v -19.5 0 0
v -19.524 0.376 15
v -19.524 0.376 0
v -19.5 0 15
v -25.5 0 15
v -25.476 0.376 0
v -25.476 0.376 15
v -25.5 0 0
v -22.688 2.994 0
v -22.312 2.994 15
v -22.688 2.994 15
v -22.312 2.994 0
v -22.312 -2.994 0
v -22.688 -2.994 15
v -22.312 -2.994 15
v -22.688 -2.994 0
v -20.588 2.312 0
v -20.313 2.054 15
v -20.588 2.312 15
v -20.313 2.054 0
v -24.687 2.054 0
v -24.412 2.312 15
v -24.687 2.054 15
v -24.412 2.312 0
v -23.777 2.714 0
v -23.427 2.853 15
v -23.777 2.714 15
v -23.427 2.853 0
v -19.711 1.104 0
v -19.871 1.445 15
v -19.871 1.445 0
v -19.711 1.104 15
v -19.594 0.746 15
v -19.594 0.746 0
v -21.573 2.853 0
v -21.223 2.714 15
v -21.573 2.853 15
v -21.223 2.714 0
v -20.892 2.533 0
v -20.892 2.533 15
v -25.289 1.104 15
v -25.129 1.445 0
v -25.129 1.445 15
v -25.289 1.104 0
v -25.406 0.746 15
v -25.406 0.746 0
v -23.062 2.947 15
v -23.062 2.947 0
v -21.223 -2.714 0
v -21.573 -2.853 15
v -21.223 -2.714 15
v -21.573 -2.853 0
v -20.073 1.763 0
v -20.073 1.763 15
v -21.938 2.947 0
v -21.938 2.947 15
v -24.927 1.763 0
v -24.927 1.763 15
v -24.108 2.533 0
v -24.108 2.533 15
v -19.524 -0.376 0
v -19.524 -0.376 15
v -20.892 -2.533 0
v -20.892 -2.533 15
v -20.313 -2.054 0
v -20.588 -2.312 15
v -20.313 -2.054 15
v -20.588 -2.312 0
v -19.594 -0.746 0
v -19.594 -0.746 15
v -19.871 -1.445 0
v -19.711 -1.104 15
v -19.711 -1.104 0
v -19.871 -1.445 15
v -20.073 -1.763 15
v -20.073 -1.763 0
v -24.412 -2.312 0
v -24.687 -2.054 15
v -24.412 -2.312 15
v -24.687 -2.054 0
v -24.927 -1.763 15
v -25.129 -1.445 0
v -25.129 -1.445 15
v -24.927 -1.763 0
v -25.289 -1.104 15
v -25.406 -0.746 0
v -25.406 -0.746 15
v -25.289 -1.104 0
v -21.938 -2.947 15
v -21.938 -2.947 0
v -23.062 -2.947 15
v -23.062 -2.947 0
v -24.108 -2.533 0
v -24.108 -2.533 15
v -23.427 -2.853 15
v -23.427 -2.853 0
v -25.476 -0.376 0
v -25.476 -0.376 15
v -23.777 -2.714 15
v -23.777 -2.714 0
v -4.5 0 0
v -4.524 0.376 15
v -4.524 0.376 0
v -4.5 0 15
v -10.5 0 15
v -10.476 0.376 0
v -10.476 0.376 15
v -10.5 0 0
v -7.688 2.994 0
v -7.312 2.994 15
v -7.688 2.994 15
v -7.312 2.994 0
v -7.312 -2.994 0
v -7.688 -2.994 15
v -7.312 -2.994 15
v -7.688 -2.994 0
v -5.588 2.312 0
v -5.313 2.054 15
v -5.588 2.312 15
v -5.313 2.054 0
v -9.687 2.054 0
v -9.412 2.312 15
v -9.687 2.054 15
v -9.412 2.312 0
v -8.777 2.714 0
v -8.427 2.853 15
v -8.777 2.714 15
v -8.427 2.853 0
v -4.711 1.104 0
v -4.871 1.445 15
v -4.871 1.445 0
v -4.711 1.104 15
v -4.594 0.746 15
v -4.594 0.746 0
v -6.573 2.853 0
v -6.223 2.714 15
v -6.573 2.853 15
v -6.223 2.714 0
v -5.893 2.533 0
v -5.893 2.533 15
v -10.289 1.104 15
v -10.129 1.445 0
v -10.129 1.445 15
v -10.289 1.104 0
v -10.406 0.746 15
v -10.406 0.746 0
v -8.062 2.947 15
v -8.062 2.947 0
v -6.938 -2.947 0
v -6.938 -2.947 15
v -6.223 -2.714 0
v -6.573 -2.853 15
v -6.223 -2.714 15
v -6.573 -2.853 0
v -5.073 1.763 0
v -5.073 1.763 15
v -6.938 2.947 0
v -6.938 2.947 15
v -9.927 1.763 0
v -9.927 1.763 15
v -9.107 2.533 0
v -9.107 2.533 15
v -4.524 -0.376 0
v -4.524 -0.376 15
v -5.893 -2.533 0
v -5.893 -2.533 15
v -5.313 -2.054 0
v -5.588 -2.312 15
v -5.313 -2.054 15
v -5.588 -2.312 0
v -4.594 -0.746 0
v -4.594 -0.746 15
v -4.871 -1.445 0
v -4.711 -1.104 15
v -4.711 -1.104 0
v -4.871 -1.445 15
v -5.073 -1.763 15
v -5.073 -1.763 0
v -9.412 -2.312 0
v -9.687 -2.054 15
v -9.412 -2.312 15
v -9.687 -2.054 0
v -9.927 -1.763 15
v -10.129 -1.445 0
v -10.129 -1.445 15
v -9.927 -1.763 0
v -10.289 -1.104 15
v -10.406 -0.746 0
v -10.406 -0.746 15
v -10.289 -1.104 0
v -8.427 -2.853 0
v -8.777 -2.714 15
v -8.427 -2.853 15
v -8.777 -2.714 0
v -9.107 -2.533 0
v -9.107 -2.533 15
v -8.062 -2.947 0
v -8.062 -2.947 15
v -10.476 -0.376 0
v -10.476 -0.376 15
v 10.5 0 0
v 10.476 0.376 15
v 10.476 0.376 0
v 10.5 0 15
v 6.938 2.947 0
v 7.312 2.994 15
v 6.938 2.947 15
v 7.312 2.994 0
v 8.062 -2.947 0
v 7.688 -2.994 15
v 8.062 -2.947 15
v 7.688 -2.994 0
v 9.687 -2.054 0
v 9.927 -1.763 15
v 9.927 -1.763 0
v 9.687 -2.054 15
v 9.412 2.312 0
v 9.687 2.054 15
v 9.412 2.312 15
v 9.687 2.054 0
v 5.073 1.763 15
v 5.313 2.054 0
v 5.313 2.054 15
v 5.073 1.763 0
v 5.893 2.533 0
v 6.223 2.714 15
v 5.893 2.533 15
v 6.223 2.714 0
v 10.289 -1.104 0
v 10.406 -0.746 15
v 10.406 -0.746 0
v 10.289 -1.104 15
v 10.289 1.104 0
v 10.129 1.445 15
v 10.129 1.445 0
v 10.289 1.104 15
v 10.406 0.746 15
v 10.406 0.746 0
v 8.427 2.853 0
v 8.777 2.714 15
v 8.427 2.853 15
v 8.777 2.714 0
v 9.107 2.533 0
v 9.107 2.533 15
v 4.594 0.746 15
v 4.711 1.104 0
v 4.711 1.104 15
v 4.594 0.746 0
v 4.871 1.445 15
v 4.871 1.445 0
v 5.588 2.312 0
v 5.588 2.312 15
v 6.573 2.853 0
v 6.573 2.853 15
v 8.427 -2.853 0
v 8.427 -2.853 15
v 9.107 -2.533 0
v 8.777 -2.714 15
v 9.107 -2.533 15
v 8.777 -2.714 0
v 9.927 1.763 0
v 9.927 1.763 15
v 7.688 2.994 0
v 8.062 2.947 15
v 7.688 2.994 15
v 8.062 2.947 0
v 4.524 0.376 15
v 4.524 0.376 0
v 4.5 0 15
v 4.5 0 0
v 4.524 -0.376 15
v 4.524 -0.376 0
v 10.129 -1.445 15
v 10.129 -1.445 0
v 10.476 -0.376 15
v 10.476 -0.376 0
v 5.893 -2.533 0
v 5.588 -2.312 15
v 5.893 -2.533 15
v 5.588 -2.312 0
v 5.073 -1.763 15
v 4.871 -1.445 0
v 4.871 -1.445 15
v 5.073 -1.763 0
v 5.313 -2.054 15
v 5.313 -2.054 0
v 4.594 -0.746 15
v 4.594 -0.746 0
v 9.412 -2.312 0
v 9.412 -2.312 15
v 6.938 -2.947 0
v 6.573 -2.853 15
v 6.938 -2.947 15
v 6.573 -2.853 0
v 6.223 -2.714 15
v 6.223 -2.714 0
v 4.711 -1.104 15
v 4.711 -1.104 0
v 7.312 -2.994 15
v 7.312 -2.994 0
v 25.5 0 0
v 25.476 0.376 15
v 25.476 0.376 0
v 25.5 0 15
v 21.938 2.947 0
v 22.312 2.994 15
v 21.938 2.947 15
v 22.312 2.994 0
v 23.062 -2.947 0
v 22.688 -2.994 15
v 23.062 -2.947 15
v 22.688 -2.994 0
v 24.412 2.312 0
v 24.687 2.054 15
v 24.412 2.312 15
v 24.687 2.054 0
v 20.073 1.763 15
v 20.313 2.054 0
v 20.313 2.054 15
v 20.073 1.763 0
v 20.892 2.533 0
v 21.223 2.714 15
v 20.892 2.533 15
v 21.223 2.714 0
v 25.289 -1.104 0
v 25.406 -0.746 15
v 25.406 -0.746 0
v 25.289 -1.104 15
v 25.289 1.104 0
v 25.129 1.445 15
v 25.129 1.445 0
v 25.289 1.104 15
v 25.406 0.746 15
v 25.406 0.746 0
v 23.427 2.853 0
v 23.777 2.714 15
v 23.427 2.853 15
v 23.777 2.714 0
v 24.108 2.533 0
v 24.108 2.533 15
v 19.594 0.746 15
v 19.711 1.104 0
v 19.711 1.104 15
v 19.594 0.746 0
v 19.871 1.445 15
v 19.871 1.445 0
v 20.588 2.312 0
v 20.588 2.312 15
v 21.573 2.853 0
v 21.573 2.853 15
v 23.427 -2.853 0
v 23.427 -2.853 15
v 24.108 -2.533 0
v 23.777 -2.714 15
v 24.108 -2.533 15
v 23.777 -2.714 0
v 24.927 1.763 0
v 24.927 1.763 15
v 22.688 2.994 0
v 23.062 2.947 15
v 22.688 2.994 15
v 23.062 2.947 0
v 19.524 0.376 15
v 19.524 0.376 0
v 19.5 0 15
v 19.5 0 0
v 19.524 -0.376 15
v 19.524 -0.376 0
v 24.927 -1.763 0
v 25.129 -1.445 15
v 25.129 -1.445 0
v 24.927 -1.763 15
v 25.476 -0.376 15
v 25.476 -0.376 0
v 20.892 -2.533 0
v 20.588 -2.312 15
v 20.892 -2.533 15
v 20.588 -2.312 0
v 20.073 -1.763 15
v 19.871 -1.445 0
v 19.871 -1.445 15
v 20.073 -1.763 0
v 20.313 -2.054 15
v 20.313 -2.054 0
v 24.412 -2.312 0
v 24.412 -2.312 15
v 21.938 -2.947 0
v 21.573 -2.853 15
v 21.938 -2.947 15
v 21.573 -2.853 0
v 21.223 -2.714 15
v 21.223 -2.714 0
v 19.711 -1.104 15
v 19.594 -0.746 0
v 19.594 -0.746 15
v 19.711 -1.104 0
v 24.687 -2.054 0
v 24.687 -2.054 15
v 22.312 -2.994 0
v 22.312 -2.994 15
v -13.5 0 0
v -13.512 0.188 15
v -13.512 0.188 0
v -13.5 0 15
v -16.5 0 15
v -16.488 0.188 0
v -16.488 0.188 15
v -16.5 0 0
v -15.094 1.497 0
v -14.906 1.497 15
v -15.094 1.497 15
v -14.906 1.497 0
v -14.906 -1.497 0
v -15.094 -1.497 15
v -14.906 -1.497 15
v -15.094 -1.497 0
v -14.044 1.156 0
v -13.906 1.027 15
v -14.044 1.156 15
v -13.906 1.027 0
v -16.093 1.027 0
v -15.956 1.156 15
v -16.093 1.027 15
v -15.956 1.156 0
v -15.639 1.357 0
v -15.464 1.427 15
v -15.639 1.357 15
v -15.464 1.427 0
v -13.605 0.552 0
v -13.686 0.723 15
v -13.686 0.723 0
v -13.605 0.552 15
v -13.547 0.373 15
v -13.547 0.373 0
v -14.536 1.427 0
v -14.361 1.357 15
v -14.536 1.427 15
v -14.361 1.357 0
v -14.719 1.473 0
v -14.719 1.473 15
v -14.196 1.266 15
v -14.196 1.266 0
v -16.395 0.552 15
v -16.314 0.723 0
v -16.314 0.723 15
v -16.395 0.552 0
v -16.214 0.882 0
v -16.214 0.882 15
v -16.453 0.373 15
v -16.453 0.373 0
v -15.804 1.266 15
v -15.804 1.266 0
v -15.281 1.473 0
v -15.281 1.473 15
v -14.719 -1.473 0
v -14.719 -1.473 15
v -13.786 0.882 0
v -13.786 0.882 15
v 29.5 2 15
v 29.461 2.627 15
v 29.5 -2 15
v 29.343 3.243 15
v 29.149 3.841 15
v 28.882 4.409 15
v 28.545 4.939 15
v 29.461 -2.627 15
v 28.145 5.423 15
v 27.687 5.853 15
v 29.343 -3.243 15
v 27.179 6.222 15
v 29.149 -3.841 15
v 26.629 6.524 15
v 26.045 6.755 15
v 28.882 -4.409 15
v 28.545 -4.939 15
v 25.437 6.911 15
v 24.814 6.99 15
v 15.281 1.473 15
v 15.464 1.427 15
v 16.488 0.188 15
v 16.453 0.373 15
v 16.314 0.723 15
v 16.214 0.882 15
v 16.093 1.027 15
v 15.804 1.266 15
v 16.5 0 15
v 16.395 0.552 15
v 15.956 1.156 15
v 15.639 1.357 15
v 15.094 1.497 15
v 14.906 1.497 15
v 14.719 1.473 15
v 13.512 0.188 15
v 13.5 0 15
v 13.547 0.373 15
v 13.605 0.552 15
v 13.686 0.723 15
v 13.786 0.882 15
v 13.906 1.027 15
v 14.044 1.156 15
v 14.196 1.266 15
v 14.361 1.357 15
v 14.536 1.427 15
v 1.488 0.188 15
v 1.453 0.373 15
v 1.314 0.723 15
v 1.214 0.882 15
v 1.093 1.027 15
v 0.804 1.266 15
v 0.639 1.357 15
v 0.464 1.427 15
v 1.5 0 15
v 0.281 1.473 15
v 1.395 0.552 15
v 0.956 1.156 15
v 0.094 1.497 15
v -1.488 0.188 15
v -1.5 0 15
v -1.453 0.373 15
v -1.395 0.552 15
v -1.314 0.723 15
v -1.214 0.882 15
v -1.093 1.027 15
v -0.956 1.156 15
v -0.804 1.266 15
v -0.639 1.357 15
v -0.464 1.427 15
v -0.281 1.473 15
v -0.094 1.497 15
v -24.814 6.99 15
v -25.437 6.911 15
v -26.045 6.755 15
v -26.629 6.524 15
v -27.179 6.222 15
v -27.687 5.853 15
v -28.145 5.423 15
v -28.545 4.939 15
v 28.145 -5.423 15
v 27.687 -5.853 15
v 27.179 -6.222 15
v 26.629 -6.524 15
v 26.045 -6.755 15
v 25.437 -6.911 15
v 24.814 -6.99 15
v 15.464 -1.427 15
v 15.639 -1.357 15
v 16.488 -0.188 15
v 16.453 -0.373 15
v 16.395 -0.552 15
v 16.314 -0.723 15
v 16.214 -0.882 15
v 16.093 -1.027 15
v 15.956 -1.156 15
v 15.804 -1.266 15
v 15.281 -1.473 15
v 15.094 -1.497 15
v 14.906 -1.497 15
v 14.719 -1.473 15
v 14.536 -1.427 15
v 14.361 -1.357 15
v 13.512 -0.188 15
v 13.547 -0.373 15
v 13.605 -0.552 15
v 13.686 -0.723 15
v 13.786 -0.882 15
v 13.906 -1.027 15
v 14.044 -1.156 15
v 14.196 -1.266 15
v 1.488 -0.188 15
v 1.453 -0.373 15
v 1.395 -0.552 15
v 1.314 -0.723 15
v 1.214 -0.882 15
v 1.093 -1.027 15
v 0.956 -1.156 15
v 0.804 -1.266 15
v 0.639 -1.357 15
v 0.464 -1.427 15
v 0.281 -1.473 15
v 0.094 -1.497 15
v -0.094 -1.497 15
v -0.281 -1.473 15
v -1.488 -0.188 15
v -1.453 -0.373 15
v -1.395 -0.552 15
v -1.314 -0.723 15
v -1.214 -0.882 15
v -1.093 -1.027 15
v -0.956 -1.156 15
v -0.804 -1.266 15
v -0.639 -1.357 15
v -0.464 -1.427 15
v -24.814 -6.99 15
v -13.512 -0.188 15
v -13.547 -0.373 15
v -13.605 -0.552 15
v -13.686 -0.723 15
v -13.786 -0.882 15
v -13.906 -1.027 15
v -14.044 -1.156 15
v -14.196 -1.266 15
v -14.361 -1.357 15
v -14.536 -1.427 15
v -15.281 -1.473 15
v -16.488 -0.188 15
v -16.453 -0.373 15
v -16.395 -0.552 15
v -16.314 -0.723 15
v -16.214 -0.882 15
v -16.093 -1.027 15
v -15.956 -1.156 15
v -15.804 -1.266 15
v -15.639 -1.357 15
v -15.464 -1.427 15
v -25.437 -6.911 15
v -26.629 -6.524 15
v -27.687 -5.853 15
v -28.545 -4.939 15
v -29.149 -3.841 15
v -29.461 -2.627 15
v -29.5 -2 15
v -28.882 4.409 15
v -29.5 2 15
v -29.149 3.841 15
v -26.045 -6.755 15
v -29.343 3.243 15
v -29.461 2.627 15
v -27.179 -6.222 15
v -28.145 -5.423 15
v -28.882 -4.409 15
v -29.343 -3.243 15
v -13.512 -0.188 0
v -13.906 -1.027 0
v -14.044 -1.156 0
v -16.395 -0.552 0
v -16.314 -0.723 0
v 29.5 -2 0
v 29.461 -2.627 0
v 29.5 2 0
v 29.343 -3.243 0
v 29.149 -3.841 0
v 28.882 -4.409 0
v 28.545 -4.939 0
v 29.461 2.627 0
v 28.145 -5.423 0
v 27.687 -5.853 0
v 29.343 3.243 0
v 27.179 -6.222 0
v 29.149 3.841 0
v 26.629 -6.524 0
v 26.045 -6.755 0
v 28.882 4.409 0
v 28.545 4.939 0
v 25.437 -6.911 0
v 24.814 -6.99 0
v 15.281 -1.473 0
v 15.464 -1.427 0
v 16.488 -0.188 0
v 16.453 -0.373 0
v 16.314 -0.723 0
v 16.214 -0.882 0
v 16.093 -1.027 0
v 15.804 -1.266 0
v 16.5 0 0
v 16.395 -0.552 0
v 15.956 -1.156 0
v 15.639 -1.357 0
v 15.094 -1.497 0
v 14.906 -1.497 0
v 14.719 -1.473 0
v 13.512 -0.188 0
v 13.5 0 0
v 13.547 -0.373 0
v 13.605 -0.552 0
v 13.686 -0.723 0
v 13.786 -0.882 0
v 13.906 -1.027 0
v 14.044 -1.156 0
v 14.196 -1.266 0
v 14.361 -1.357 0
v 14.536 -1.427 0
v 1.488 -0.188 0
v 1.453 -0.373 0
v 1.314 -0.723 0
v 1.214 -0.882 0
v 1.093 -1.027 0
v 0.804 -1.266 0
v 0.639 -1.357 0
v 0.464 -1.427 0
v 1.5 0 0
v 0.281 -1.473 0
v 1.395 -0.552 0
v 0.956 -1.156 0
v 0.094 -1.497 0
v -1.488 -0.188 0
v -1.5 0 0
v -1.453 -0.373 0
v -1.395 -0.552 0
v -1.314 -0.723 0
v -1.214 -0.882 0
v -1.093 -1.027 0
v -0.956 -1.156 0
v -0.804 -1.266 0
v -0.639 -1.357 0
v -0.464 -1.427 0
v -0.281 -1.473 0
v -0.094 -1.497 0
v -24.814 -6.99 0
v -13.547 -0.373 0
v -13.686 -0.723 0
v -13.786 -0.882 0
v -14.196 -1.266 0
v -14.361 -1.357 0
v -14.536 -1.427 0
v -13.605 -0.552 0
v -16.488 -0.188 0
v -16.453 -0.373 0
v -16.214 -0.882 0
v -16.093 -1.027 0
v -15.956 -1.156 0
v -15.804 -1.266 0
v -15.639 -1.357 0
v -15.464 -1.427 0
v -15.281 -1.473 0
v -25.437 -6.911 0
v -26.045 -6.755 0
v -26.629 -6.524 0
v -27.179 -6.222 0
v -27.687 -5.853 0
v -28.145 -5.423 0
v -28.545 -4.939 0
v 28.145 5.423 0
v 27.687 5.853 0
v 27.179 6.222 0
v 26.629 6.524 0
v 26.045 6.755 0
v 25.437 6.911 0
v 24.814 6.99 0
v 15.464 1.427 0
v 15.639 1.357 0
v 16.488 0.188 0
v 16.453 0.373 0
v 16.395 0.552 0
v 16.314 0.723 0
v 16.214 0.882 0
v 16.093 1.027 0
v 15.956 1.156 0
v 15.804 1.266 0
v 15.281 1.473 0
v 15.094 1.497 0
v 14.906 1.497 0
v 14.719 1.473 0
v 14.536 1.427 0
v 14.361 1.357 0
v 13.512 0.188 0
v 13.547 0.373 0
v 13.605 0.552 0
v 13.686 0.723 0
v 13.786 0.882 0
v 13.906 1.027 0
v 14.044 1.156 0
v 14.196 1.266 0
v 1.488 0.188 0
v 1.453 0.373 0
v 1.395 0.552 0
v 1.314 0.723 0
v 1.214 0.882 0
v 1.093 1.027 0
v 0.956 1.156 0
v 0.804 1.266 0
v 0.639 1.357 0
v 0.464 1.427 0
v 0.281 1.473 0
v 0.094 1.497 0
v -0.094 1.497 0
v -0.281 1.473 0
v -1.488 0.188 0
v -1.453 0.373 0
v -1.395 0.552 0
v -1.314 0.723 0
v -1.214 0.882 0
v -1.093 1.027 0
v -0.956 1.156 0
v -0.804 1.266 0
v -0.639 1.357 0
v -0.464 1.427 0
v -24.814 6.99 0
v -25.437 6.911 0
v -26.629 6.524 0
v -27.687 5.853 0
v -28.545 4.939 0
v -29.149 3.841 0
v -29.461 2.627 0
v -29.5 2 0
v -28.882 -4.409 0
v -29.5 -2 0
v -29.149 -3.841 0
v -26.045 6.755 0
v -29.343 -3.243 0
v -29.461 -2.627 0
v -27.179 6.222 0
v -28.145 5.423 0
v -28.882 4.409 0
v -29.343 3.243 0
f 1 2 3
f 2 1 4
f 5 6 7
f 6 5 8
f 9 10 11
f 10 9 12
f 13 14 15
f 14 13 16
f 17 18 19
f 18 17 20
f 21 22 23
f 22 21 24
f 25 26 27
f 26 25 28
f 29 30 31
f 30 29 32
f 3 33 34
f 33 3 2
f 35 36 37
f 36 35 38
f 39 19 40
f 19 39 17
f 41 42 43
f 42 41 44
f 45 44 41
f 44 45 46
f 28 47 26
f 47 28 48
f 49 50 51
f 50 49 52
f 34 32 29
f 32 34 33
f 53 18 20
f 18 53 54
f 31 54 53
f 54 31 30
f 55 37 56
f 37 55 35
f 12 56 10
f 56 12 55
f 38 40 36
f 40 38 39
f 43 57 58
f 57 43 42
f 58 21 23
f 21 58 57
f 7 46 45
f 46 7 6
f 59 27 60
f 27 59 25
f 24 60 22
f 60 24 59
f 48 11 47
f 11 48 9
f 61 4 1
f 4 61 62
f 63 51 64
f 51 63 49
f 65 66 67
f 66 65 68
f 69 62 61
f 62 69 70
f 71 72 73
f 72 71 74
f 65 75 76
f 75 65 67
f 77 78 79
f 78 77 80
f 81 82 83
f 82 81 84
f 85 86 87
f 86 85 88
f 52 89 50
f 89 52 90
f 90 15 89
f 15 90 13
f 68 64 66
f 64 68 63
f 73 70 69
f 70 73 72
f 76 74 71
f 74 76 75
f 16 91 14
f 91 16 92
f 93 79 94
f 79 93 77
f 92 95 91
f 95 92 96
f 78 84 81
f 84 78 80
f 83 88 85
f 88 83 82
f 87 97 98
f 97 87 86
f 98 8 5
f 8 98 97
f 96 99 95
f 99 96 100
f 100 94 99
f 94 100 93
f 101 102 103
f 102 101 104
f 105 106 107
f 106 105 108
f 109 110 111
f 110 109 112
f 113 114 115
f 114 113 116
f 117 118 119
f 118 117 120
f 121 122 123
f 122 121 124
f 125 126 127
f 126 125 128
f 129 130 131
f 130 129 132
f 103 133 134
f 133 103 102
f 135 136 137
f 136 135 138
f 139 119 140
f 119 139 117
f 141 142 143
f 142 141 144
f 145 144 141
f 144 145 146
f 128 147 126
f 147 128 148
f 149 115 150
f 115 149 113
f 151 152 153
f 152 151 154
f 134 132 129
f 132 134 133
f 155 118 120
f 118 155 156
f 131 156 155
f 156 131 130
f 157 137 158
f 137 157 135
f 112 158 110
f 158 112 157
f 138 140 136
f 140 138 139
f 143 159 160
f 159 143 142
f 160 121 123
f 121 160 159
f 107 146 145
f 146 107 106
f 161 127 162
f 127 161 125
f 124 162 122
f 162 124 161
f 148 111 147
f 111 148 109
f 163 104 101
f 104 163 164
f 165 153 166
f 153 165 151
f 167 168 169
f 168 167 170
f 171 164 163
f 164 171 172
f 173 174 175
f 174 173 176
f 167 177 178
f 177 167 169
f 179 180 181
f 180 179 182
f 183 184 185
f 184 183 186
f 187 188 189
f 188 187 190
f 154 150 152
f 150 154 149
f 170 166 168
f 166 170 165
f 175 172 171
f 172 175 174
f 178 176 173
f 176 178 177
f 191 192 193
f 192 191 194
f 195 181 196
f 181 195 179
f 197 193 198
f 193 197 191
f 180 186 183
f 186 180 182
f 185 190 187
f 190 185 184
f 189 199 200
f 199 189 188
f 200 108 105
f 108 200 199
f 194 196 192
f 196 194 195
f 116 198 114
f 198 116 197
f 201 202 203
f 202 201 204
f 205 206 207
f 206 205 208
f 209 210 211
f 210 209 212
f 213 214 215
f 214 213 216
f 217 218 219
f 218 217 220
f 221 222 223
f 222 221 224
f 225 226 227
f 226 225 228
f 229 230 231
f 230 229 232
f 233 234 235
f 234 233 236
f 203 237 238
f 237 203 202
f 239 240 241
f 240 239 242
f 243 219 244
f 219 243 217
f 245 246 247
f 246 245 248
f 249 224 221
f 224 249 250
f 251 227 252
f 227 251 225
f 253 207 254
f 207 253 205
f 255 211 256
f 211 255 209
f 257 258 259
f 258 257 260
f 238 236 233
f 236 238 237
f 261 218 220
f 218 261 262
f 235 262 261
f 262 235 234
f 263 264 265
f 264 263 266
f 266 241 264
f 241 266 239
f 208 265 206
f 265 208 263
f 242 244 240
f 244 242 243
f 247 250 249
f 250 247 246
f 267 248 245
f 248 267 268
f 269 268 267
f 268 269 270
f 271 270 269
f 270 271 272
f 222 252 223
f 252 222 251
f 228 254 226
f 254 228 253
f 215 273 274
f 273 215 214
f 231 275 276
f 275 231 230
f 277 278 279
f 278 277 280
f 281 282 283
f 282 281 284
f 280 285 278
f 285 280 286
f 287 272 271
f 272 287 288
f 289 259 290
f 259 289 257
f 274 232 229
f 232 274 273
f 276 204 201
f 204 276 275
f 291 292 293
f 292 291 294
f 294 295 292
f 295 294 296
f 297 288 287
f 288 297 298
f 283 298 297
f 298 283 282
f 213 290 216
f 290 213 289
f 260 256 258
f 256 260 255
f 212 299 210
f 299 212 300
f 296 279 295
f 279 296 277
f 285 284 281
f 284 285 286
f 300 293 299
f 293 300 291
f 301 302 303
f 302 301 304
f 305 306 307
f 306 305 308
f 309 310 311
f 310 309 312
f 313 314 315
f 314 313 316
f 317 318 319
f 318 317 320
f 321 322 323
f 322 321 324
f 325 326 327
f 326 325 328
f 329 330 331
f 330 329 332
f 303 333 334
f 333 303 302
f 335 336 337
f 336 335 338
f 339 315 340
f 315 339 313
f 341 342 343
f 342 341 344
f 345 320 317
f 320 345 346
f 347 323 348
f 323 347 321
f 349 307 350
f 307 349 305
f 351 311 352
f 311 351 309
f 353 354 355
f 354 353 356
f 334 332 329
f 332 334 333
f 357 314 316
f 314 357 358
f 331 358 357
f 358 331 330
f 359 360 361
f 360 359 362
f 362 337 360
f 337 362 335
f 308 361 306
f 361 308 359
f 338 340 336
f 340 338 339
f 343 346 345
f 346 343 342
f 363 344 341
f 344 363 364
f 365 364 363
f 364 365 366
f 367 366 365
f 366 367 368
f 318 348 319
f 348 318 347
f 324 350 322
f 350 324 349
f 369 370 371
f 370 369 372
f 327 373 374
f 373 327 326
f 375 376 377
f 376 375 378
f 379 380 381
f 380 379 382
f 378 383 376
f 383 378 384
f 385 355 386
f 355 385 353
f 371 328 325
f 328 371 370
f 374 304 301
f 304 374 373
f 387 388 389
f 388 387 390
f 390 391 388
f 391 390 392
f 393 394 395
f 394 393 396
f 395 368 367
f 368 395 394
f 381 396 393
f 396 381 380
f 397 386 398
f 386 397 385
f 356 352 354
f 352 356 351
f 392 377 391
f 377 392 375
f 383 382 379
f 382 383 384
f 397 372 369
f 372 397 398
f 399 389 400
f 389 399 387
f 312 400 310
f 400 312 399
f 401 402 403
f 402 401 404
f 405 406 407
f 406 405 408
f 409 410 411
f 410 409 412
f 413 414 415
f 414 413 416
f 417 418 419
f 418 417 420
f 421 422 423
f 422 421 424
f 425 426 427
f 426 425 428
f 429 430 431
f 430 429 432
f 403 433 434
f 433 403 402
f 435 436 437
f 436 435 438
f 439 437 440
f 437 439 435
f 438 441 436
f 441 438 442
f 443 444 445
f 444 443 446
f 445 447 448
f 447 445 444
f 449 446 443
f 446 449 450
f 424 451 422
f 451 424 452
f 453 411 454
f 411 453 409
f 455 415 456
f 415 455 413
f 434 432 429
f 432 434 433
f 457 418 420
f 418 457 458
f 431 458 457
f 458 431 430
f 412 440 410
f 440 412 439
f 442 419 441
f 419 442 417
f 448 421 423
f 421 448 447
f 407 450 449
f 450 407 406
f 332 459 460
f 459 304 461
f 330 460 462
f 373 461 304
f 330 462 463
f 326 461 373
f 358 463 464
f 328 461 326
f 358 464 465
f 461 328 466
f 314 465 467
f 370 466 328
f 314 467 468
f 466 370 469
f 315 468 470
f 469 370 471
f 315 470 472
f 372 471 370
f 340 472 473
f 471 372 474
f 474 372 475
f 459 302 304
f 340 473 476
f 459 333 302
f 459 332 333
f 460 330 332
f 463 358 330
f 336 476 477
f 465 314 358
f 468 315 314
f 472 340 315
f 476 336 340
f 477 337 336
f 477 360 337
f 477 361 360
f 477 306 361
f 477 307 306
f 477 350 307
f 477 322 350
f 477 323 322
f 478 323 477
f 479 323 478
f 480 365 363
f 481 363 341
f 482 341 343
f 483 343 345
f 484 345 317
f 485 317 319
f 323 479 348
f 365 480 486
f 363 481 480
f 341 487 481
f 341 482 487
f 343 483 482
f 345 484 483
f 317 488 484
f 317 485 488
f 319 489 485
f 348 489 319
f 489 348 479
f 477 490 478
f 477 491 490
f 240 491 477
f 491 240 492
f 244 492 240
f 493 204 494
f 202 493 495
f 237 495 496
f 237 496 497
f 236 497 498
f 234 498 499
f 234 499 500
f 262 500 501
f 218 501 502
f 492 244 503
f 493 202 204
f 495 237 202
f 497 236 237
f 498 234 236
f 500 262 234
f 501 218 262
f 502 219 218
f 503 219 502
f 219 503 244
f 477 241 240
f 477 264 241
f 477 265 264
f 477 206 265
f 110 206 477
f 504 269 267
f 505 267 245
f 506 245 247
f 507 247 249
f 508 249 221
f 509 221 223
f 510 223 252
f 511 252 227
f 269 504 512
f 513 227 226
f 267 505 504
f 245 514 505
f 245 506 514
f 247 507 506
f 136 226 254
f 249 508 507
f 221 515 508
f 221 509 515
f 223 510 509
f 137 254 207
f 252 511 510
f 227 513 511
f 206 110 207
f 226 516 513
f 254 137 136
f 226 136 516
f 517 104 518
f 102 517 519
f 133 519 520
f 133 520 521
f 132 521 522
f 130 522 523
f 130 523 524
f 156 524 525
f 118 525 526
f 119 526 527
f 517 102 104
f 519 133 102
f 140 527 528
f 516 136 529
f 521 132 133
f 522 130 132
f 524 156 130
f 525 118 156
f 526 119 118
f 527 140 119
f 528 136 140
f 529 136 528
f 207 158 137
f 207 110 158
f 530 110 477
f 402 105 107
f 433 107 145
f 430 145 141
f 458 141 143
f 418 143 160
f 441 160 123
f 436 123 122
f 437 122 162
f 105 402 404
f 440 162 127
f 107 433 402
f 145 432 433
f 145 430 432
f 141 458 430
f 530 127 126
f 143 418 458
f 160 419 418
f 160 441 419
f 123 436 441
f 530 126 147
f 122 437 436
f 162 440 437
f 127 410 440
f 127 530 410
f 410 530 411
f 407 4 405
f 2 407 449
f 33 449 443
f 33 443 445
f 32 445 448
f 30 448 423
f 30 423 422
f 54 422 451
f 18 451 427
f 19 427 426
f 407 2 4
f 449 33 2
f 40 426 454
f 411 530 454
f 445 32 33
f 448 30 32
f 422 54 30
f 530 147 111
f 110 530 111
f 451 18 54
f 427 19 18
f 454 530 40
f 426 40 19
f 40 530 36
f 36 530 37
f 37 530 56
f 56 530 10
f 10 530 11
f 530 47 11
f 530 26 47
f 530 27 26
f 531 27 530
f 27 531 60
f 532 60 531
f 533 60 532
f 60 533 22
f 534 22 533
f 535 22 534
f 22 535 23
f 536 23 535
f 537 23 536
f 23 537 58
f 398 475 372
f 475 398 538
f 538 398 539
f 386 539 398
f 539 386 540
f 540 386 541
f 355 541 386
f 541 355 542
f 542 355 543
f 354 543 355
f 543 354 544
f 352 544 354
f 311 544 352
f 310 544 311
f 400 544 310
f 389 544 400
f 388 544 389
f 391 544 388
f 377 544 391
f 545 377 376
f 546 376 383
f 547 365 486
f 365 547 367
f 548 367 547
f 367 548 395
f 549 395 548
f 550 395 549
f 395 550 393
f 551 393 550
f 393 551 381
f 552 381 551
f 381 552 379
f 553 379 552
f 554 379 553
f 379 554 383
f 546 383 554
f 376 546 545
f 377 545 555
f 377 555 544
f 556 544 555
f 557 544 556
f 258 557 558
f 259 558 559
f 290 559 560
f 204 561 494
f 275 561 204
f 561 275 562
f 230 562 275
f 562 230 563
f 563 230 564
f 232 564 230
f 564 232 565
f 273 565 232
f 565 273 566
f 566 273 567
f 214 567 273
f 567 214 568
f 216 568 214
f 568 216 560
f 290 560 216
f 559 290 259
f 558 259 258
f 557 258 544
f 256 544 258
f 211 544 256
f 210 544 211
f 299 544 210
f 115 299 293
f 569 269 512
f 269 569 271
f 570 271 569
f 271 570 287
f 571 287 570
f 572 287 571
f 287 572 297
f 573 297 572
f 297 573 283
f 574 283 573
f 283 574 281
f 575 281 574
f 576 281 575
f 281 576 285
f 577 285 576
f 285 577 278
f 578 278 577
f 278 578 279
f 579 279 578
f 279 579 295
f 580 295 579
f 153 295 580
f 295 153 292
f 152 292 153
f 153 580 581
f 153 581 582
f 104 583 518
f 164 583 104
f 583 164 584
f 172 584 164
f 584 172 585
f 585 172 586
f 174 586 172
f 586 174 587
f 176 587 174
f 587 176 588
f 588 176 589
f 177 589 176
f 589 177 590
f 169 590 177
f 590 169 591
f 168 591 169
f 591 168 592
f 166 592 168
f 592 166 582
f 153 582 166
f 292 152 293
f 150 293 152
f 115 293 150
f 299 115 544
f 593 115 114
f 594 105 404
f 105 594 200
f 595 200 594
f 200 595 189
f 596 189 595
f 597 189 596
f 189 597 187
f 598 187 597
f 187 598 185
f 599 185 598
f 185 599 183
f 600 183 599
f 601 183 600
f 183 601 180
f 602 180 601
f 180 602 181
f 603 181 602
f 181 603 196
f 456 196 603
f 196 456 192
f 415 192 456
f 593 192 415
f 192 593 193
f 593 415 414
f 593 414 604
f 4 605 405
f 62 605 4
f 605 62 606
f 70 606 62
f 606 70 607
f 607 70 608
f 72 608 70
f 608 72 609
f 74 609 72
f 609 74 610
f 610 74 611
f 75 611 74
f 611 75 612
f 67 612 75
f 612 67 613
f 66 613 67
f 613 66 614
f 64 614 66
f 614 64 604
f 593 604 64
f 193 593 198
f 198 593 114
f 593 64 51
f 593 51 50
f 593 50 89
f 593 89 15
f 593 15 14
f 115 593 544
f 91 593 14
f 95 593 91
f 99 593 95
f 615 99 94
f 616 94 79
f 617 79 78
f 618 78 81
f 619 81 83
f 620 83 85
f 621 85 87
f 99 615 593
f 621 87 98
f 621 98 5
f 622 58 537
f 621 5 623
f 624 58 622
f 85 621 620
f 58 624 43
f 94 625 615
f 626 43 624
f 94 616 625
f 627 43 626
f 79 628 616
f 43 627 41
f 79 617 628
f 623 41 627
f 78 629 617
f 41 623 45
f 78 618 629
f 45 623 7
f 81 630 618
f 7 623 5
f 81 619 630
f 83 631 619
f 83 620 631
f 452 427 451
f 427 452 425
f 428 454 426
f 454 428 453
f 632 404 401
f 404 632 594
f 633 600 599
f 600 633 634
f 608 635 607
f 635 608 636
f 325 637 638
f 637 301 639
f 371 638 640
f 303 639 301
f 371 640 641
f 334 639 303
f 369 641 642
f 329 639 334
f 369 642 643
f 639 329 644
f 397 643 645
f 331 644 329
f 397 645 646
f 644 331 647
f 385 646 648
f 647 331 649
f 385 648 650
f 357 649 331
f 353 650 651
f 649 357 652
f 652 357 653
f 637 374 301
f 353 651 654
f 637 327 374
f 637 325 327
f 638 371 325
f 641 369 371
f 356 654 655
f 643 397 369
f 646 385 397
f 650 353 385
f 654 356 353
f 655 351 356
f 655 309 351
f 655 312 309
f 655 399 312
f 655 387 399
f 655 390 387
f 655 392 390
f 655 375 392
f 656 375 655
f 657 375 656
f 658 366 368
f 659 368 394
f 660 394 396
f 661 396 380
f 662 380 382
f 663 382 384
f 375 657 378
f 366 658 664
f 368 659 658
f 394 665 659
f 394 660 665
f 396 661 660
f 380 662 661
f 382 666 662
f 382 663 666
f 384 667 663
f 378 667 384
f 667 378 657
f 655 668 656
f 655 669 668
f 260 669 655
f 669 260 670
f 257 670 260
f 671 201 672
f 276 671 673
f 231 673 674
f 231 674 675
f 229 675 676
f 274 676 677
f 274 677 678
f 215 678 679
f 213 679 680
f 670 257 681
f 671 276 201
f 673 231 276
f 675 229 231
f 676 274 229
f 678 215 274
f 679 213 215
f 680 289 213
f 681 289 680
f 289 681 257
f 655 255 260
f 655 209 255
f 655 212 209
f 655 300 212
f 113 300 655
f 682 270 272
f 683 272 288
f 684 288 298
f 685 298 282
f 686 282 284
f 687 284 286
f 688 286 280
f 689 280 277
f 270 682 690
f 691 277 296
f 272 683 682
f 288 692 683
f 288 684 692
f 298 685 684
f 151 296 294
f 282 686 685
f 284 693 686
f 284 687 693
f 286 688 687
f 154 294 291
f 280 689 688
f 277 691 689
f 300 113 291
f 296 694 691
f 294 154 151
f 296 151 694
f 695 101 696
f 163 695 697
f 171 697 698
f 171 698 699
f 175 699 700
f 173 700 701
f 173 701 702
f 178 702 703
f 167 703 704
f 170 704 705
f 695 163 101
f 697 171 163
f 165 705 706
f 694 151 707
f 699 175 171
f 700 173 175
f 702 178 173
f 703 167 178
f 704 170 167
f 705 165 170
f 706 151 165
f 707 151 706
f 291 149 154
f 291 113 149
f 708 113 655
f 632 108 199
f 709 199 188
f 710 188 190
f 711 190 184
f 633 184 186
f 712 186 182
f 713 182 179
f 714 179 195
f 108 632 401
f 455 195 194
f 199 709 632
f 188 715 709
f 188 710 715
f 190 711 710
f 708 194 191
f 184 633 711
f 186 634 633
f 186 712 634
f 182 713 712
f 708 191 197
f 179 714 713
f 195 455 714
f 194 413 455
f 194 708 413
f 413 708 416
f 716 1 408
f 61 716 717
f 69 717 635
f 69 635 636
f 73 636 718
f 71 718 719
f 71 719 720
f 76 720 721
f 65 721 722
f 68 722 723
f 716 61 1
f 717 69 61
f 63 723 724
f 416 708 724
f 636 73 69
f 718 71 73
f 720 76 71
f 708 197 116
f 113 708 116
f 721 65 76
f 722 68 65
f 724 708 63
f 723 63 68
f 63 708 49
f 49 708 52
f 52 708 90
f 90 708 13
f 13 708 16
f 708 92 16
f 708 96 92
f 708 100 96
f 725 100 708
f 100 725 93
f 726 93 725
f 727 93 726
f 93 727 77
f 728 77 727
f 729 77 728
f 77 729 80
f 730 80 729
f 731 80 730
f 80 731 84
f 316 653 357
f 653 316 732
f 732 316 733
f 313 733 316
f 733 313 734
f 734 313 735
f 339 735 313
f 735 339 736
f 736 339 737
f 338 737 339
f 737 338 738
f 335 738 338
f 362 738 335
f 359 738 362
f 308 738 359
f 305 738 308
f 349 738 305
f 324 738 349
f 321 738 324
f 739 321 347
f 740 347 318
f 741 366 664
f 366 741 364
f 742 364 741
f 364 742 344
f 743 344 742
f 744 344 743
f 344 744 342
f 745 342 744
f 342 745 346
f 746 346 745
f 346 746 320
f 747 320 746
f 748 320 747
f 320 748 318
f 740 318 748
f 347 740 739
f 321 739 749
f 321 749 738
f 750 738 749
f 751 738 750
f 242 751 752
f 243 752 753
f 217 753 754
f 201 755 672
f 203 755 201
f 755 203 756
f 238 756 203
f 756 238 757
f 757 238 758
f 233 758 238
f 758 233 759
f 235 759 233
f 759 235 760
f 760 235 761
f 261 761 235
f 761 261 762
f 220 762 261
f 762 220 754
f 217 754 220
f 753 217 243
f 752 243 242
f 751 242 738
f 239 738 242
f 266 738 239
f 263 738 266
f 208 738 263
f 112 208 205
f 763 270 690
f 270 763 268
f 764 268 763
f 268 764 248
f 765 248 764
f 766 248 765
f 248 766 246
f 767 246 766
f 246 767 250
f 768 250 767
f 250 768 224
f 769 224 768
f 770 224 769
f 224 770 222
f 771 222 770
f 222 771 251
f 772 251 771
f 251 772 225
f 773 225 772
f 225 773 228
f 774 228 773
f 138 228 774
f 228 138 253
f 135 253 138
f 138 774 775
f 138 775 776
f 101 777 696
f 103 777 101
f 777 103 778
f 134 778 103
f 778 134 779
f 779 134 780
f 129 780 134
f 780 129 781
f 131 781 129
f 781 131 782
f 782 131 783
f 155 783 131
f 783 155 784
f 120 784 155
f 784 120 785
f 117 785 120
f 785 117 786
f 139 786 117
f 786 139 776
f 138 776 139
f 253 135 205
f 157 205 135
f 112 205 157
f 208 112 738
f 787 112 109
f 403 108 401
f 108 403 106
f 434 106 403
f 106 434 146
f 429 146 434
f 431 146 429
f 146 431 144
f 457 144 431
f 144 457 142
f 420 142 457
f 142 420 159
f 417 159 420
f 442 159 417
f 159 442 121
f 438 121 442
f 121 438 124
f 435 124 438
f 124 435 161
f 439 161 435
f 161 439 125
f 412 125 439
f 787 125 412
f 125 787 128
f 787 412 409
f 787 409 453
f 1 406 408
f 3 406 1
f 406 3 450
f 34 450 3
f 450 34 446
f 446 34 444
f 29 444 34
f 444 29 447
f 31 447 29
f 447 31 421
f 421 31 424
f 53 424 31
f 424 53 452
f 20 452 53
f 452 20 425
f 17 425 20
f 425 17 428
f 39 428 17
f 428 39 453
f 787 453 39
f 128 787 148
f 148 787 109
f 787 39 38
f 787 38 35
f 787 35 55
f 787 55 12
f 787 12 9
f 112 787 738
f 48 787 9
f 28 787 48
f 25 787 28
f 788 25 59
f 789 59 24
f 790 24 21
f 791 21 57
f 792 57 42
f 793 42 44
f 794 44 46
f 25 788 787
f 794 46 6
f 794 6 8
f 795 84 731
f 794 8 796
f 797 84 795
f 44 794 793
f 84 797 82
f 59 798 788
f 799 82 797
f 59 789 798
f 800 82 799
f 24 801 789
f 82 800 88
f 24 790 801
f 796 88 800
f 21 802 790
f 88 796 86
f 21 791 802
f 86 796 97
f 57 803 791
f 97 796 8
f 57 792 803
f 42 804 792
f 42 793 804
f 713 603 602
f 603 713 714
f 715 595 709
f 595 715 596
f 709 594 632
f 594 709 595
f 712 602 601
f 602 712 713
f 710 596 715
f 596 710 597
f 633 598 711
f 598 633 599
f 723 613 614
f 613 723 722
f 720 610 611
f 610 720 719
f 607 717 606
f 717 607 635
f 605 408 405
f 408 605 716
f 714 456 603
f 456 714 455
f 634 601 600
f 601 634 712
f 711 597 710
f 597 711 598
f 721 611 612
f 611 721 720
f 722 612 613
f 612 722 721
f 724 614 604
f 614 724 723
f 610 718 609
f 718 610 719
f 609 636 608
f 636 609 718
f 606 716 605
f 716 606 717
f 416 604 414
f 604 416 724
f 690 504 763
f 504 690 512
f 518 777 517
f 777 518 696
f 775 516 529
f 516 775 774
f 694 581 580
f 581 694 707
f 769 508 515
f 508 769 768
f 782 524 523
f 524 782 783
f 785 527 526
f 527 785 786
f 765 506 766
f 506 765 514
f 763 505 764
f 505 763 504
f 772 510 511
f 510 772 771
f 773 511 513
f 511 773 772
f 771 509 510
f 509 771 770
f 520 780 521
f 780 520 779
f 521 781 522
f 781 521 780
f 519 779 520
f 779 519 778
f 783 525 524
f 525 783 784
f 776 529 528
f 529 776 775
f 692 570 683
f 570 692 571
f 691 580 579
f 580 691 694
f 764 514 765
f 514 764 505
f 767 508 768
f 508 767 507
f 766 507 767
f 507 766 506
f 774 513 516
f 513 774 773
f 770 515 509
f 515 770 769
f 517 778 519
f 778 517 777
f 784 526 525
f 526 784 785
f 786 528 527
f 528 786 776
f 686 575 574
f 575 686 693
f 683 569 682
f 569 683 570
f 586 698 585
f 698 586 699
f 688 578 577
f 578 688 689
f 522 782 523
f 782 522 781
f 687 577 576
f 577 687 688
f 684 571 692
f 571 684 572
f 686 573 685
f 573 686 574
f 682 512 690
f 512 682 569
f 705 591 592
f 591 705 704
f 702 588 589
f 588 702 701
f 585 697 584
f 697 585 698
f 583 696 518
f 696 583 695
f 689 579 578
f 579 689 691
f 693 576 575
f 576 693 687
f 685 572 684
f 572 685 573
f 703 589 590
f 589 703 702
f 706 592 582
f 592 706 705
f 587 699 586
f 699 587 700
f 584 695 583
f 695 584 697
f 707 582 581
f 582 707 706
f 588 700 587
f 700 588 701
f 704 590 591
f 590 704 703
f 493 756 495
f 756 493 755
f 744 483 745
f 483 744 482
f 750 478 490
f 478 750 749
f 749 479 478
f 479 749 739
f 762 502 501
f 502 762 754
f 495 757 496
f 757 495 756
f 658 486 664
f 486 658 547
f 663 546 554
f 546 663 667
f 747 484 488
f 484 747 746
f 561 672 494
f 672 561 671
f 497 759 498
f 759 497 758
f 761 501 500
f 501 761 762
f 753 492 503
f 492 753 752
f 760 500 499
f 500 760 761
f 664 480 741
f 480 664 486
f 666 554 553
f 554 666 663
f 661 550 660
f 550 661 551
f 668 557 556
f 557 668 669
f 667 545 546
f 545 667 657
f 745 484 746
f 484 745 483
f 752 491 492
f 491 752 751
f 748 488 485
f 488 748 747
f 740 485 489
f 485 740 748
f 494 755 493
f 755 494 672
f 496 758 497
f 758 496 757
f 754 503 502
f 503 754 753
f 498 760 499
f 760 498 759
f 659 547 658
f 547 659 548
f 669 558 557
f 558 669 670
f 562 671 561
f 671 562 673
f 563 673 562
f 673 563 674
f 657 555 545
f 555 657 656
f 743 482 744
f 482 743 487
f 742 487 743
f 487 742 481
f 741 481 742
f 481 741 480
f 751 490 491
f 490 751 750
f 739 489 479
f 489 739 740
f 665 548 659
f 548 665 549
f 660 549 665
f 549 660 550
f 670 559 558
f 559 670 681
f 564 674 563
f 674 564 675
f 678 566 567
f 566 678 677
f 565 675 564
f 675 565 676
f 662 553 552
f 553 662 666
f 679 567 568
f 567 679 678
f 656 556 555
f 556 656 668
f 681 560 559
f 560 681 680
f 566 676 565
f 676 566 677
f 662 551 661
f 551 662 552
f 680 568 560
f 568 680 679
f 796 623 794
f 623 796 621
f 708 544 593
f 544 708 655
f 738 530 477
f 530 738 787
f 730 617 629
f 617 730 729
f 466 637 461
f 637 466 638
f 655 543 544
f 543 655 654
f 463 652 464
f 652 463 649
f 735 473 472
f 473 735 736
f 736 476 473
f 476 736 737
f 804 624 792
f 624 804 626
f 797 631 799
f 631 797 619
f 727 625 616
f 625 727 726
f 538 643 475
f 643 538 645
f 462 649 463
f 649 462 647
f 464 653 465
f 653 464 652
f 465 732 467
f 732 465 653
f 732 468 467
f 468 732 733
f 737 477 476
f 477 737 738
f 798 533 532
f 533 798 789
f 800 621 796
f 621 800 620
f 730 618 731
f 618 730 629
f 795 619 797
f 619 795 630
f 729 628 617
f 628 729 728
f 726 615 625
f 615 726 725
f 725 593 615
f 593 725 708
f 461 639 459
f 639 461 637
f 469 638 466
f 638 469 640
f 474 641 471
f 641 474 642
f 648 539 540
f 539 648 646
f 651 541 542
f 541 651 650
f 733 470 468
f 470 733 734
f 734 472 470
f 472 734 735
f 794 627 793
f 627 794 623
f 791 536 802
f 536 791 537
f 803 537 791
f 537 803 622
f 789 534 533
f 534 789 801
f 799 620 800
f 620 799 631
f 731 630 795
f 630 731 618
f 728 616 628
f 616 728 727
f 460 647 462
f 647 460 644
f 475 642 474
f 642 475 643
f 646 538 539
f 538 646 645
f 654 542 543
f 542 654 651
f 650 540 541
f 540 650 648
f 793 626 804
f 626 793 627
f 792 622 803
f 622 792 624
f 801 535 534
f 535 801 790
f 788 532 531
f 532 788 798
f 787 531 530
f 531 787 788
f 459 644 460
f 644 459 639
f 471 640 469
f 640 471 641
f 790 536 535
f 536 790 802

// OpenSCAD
$fn = 50;


difference() {
	union() {
		hull() {
			translate(v = [-24.5000000000, 2.0000000000, 0]) {
				cylinder(h = 15, r = 5);
			}
			translate(v = [24.5000000000, 2.0000000000, 0]) {
				cylinder(h = 15, r = 5);
			}
			translate(v = [-24.5000000000, -2.0000000000, 0]) {
				cylinder(h = 15, r = 5);
			}
			translate(v = [24.5000000000, -2.0000000000, 0]) {
				cylinder(h = 15, r = 5);
			}
		}
	}
	union() {
		translate(v = [-22.5000000000, 0.0000000000, -100.0000000000]) {
			cylinder(h = 200, r = 3.0000000000);
		}
		translate(v = [-7.5000000000, 0.0000000000, -100.0000000000]) {
			cylinder(h = 200, r = 3.0000000000);
		}
		translate(v = [7.5000000000, 0.0000000000, -100.0000000000]) {
			cylinder(h = 200, r = 3.0000000000);
		}
		translate(v = [22.5000000000, 0.0000000000, -100.0000000000]) {
			cylinder(h = 200, r = 3.0000000000);
		}
		translate(v = [-22.5000000000, 0.0000000000, 0]) {
			cylinder(h = 15, r = 1.5000000000);
		}
		translate(v = [-15.0000000000, 0.0000000000, 0]) {
			cylinder(h = 15, r = 1.5000000000);
		}
		translate(v = [-7.5000000000, 0.0000000000, 0]) {
			cylinder(h = 15, r = 1.5000000000);
		}
		cylinder(h = 15, r = 1.5000000000);
		translate(v = [7.5000000000, 0.0000000000, 0]) {
			cylinder(h = 15, r = 1.5000000000);
		}
		translate(v = [15.0000000000, 0.0000000000, 0]) {
			cylinder(h = 15, r = 1.5000000000);
		}
		translate(v = [22.5000000000, 0.0000000000, 0]) {
			cylinder(h = 15, r = 1.5000000000);
		}
		translate(v = [-22.5000000000, 0.0000000000, 0]) {
			cylinder(h = 15, r = 1.5000000000);
		}
		translate(v = [-15.0000000000, 0.0000000000, 0]) {
			cylinder(h = 15, r = 1.5000000000);
		}
		translate(v = [-7.5000000000, 0.0000000000, 0]) {
			cylinder(h = 15, r = 1.5000000000);
		}
		cylinder(h = 15, r = 1.5000000000);
		translate(v = [7.5000000000, 0.0000000000, 0]) {
			cylinder(h = 15, r = 1.5000000000);
		}
		translate(v = [15.0000000000, 0.0000000000, 0]) {
			cylinder(h = 15, r = 1.5000000000);
		}
		translate(v = [22.5000000000, 0.0000000000, 0]) {
			cylinder(h = 15, r = 1.5000000000);
		}
		translate(v = [-22.5000000000, 0.0000000000, 0]) {
			cylinder(h = 15, r = 1.5000000000);
		}
		translate(v = [-15.0000000000, 0.0000000000, 0]) {
			cylinder(h = 15, r = 1.5000000000);
		}
		translate(v = [-7.5000000000, 0.0000000000, 0]) {
			cylinder(h = 15, r = 1.5000000000);
		}
		cylinder(h = 15, r = 1.5000000000);
		translate(v = [7.5000000000, 0.0000000000, 0]) {
			cylinder(h = 15, r = 1.5000000000);
		}
		translate(v = [15.0000000000, 0.0000000000, 0]) {
			cylinder(h = 15, r = 1.5000000000);
		}
		translate(v = [22.5000000000, 0.0000000000, 0]) {
			cylinder(h = 15, r = 1.5000000000);
		}
	}
}
